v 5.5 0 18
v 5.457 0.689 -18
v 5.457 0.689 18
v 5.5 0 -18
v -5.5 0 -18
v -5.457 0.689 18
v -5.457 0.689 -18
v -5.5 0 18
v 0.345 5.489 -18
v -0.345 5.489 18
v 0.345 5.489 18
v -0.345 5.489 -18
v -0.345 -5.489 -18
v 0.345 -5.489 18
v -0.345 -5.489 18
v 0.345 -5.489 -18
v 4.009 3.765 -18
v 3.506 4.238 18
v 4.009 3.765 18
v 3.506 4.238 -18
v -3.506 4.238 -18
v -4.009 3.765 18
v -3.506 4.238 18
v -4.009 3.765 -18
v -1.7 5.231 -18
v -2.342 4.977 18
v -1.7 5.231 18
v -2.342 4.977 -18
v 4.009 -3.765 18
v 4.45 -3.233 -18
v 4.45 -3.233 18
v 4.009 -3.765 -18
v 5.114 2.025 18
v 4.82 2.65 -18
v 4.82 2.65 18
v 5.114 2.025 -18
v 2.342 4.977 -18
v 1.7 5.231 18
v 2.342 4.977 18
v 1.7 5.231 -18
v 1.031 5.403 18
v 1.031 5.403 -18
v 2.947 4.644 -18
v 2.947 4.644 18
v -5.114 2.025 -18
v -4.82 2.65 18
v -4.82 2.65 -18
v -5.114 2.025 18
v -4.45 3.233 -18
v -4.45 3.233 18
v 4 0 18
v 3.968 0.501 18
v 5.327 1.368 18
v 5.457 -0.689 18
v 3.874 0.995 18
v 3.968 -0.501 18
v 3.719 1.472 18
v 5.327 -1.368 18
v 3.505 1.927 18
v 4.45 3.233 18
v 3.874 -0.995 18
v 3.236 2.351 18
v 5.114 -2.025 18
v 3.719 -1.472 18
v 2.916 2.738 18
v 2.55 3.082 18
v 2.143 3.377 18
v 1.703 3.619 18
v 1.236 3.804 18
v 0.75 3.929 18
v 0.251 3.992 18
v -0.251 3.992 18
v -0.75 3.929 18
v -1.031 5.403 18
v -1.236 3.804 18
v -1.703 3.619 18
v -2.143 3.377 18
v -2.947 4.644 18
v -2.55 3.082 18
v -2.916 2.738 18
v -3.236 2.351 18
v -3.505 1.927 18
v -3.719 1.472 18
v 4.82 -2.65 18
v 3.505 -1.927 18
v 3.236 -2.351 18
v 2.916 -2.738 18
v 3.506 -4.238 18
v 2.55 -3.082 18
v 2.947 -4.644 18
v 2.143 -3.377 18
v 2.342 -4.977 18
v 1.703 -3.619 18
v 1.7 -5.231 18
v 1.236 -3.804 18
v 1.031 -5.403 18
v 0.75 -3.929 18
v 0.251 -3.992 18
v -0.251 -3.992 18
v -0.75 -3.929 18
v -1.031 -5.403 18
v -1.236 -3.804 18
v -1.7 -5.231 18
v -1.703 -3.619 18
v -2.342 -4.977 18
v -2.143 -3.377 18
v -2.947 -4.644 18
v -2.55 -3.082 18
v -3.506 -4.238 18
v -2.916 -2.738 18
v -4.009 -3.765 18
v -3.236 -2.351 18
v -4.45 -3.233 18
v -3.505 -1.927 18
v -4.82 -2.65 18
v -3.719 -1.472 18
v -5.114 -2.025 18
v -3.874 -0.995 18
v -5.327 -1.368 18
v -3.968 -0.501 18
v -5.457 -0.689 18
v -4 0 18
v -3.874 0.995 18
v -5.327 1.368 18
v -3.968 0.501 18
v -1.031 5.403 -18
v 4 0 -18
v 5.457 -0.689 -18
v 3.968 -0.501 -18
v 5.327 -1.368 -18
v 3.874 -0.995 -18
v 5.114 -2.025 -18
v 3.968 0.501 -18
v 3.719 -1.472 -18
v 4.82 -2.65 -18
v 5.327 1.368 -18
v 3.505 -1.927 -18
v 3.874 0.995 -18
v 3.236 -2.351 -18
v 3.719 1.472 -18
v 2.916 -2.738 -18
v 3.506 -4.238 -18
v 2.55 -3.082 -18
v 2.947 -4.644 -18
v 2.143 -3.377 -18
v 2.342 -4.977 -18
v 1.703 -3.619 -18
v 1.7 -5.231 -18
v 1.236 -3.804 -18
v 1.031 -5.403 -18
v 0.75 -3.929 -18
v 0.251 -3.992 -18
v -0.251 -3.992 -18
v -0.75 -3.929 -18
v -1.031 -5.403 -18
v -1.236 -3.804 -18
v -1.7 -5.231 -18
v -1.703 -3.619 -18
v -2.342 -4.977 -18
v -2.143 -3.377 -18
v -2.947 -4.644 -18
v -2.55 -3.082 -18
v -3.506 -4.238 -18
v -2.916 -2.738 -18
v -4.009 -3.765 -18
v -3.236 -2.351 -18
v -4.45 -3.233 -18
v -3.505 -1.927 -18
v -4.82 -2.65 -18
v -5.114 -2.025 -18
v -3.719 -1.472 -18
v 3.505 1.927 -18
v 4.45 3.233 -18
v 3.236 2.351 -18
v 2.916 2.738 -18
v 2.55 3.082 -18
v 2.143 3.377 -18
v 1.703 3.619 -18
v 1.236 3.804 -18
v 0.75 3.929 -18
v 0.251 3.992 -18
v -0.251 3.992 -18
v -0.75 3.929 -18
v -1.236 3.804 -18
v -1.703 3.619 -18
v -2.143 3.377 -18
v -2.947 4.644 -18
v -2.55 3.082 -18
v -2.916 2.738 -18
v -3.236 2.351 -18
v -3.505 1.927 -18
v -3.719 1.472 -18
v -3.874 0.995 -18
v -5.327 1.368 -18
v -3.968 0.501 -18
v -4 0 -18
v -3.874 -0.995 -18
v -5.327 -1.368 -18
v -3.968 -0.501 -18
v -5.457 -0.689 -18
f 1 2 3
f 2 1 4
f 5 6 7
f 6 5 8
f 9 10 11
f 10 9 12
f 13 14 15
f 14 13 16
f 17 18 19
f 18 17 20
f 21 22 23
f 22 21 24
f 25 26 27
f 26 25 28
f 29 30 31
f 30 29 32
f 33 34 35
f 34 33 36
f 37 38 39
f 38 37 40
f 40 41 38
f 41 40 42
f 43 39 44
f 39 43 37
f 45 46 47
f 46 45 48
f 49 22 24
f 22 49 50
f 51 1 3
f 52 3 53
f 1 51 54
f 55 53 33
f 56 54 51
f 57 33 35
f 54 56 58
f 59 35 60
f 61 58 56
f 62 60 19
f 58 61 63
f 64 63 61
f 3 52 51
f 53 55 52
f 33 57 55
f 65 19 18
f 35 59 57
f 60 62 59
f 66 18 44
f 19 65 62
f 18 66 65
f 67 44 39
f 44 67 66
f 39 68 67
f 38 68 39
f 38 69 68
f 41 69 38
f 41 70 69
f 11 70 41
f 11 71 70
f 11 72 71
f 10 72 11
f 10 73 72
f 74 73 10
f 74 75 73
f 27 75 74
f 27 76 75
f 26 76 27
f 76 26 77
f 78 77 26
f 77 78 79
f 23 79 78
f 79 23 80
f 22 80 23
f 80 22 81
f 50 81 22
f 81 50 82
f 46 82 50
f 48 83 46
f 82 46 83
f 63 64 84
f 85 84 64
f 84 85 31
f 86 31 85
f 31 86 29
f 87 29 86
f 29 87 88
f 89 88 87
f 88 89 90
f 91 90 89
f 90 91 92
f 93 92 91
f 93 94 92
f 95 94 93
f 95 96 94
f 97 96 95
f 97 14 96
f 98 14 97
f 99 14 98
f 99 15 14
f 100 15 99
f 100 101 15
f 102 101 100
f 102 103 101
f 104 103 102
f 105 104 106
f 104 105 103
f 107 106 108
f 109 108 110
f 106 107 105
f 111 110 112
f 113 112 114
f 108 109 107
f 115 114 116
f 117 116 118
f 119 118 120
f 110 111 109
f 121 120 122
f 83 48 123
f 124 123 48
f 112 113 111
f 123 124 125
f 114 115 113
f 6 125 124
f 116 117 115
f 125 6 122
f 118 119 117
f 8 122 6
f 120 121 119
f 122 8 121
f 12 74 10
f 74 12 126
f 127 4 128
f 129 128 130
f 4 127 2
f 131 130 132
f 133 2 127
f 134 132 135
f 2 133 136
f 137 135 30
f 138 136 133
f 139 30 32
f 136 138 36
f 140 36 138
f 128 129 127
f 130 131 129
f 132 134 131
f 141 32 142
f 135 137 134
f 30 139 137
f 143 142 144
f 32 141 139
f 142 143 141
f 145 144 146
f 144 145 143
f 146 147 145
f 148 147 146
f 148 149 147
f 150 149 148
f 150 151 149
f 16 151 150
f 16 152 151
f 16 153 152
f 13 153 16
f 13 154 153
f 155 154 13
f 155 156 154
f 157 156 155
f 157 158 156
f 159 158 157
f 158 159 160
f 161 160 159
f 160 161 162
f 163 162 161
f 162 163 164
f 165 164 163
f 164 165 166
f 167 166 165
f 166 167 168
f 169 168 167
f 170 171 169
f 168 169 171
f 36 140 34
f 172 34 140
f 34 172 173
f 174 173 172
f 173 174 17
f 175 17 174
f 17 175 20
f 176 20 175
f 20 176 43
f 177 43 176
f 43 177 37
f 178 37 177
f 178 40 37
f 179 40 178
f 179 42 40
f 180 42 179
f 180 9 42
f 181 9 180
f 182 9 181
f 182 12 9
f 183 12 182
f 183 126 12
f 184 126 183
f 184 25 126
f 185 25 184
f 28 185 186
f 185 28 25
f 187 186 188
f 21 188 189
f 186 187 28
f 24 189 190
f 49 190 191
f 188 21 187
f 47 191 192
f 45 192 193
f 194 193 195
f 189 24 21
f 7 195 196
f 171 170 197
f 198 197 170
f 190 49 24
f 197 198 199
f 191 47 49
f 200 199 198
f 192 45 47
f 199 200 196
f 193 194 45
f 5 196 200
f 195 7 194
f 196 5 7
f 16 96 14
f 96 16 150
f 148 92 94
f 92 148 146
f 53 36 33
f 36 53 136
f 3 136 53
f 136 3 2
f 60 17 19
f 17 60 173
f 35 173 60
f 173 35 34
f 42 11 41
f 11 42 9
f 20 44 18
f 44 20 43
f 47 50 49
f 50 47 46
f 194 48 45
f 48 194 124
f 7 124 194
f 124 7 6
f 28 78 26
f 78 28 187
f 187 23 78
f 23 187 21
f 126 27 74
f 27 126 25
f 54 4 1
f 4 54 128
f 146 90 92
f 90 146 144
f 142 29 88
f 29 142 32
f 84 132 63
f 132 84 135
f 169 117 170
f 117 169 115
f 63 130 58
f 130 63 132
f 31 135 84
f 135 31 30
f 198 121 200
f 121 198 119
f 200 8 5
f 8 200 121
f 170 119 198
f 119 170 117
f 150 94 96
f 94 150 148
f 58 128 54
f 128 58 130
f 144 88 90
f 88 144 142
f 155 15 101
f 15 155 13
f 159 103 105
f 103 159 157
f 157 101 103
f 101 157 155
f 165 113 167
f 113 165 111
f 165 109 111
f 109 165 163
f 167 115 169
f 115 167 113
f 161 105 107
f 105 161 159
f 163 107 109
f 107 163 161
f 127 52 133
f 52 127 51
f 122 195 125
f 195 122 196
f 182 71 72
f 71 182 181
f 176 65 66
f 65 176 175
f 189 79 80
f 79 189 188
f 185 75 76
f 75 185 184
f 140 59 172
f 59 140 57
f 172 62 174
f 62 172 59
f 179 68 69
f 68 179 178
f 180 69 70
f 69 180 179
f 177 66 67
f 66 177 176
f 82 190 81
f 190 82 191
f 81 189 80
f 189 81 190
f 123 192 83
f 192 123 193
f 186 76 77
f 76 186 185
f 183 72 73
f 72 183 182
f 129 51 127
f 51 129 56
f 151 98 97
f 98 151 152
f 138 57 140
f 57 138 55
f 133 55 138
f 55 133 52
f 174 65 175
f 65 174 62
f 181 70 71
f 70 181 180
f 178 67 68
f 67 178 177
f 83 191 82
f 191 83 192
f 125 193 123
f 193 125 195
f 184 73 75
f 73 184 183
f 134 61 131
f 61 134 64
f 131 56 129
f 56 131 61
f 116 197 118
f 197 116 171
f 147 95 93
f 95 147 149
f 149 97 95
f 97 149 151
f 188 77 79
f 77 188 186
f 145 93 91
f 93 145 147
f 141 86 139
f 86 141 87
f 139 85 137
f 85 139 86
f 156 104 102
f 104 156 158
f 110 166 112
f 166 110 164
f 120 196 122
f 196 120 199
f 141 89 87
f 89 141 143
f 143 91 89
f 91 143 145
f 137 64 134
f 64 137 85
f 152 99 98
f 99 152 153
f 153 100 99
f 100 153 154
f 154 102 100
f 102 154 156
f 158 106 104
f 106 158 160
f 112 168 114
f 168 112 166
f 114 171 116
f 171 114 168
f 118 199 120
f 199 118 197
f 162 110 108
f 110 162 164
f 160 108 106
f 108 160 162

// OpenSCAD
$fn = 50;


difference() {
	union() {
		translate(v = [0, 0, -18.0000000000]) {
			cylinder(h = 36, r = 5.5000000000);
		}
	}
	union() {
		translate(v = [0, 0, -100.0000000000]) {
			cylinder(h = 200, r = 4);
		}
	}
}
